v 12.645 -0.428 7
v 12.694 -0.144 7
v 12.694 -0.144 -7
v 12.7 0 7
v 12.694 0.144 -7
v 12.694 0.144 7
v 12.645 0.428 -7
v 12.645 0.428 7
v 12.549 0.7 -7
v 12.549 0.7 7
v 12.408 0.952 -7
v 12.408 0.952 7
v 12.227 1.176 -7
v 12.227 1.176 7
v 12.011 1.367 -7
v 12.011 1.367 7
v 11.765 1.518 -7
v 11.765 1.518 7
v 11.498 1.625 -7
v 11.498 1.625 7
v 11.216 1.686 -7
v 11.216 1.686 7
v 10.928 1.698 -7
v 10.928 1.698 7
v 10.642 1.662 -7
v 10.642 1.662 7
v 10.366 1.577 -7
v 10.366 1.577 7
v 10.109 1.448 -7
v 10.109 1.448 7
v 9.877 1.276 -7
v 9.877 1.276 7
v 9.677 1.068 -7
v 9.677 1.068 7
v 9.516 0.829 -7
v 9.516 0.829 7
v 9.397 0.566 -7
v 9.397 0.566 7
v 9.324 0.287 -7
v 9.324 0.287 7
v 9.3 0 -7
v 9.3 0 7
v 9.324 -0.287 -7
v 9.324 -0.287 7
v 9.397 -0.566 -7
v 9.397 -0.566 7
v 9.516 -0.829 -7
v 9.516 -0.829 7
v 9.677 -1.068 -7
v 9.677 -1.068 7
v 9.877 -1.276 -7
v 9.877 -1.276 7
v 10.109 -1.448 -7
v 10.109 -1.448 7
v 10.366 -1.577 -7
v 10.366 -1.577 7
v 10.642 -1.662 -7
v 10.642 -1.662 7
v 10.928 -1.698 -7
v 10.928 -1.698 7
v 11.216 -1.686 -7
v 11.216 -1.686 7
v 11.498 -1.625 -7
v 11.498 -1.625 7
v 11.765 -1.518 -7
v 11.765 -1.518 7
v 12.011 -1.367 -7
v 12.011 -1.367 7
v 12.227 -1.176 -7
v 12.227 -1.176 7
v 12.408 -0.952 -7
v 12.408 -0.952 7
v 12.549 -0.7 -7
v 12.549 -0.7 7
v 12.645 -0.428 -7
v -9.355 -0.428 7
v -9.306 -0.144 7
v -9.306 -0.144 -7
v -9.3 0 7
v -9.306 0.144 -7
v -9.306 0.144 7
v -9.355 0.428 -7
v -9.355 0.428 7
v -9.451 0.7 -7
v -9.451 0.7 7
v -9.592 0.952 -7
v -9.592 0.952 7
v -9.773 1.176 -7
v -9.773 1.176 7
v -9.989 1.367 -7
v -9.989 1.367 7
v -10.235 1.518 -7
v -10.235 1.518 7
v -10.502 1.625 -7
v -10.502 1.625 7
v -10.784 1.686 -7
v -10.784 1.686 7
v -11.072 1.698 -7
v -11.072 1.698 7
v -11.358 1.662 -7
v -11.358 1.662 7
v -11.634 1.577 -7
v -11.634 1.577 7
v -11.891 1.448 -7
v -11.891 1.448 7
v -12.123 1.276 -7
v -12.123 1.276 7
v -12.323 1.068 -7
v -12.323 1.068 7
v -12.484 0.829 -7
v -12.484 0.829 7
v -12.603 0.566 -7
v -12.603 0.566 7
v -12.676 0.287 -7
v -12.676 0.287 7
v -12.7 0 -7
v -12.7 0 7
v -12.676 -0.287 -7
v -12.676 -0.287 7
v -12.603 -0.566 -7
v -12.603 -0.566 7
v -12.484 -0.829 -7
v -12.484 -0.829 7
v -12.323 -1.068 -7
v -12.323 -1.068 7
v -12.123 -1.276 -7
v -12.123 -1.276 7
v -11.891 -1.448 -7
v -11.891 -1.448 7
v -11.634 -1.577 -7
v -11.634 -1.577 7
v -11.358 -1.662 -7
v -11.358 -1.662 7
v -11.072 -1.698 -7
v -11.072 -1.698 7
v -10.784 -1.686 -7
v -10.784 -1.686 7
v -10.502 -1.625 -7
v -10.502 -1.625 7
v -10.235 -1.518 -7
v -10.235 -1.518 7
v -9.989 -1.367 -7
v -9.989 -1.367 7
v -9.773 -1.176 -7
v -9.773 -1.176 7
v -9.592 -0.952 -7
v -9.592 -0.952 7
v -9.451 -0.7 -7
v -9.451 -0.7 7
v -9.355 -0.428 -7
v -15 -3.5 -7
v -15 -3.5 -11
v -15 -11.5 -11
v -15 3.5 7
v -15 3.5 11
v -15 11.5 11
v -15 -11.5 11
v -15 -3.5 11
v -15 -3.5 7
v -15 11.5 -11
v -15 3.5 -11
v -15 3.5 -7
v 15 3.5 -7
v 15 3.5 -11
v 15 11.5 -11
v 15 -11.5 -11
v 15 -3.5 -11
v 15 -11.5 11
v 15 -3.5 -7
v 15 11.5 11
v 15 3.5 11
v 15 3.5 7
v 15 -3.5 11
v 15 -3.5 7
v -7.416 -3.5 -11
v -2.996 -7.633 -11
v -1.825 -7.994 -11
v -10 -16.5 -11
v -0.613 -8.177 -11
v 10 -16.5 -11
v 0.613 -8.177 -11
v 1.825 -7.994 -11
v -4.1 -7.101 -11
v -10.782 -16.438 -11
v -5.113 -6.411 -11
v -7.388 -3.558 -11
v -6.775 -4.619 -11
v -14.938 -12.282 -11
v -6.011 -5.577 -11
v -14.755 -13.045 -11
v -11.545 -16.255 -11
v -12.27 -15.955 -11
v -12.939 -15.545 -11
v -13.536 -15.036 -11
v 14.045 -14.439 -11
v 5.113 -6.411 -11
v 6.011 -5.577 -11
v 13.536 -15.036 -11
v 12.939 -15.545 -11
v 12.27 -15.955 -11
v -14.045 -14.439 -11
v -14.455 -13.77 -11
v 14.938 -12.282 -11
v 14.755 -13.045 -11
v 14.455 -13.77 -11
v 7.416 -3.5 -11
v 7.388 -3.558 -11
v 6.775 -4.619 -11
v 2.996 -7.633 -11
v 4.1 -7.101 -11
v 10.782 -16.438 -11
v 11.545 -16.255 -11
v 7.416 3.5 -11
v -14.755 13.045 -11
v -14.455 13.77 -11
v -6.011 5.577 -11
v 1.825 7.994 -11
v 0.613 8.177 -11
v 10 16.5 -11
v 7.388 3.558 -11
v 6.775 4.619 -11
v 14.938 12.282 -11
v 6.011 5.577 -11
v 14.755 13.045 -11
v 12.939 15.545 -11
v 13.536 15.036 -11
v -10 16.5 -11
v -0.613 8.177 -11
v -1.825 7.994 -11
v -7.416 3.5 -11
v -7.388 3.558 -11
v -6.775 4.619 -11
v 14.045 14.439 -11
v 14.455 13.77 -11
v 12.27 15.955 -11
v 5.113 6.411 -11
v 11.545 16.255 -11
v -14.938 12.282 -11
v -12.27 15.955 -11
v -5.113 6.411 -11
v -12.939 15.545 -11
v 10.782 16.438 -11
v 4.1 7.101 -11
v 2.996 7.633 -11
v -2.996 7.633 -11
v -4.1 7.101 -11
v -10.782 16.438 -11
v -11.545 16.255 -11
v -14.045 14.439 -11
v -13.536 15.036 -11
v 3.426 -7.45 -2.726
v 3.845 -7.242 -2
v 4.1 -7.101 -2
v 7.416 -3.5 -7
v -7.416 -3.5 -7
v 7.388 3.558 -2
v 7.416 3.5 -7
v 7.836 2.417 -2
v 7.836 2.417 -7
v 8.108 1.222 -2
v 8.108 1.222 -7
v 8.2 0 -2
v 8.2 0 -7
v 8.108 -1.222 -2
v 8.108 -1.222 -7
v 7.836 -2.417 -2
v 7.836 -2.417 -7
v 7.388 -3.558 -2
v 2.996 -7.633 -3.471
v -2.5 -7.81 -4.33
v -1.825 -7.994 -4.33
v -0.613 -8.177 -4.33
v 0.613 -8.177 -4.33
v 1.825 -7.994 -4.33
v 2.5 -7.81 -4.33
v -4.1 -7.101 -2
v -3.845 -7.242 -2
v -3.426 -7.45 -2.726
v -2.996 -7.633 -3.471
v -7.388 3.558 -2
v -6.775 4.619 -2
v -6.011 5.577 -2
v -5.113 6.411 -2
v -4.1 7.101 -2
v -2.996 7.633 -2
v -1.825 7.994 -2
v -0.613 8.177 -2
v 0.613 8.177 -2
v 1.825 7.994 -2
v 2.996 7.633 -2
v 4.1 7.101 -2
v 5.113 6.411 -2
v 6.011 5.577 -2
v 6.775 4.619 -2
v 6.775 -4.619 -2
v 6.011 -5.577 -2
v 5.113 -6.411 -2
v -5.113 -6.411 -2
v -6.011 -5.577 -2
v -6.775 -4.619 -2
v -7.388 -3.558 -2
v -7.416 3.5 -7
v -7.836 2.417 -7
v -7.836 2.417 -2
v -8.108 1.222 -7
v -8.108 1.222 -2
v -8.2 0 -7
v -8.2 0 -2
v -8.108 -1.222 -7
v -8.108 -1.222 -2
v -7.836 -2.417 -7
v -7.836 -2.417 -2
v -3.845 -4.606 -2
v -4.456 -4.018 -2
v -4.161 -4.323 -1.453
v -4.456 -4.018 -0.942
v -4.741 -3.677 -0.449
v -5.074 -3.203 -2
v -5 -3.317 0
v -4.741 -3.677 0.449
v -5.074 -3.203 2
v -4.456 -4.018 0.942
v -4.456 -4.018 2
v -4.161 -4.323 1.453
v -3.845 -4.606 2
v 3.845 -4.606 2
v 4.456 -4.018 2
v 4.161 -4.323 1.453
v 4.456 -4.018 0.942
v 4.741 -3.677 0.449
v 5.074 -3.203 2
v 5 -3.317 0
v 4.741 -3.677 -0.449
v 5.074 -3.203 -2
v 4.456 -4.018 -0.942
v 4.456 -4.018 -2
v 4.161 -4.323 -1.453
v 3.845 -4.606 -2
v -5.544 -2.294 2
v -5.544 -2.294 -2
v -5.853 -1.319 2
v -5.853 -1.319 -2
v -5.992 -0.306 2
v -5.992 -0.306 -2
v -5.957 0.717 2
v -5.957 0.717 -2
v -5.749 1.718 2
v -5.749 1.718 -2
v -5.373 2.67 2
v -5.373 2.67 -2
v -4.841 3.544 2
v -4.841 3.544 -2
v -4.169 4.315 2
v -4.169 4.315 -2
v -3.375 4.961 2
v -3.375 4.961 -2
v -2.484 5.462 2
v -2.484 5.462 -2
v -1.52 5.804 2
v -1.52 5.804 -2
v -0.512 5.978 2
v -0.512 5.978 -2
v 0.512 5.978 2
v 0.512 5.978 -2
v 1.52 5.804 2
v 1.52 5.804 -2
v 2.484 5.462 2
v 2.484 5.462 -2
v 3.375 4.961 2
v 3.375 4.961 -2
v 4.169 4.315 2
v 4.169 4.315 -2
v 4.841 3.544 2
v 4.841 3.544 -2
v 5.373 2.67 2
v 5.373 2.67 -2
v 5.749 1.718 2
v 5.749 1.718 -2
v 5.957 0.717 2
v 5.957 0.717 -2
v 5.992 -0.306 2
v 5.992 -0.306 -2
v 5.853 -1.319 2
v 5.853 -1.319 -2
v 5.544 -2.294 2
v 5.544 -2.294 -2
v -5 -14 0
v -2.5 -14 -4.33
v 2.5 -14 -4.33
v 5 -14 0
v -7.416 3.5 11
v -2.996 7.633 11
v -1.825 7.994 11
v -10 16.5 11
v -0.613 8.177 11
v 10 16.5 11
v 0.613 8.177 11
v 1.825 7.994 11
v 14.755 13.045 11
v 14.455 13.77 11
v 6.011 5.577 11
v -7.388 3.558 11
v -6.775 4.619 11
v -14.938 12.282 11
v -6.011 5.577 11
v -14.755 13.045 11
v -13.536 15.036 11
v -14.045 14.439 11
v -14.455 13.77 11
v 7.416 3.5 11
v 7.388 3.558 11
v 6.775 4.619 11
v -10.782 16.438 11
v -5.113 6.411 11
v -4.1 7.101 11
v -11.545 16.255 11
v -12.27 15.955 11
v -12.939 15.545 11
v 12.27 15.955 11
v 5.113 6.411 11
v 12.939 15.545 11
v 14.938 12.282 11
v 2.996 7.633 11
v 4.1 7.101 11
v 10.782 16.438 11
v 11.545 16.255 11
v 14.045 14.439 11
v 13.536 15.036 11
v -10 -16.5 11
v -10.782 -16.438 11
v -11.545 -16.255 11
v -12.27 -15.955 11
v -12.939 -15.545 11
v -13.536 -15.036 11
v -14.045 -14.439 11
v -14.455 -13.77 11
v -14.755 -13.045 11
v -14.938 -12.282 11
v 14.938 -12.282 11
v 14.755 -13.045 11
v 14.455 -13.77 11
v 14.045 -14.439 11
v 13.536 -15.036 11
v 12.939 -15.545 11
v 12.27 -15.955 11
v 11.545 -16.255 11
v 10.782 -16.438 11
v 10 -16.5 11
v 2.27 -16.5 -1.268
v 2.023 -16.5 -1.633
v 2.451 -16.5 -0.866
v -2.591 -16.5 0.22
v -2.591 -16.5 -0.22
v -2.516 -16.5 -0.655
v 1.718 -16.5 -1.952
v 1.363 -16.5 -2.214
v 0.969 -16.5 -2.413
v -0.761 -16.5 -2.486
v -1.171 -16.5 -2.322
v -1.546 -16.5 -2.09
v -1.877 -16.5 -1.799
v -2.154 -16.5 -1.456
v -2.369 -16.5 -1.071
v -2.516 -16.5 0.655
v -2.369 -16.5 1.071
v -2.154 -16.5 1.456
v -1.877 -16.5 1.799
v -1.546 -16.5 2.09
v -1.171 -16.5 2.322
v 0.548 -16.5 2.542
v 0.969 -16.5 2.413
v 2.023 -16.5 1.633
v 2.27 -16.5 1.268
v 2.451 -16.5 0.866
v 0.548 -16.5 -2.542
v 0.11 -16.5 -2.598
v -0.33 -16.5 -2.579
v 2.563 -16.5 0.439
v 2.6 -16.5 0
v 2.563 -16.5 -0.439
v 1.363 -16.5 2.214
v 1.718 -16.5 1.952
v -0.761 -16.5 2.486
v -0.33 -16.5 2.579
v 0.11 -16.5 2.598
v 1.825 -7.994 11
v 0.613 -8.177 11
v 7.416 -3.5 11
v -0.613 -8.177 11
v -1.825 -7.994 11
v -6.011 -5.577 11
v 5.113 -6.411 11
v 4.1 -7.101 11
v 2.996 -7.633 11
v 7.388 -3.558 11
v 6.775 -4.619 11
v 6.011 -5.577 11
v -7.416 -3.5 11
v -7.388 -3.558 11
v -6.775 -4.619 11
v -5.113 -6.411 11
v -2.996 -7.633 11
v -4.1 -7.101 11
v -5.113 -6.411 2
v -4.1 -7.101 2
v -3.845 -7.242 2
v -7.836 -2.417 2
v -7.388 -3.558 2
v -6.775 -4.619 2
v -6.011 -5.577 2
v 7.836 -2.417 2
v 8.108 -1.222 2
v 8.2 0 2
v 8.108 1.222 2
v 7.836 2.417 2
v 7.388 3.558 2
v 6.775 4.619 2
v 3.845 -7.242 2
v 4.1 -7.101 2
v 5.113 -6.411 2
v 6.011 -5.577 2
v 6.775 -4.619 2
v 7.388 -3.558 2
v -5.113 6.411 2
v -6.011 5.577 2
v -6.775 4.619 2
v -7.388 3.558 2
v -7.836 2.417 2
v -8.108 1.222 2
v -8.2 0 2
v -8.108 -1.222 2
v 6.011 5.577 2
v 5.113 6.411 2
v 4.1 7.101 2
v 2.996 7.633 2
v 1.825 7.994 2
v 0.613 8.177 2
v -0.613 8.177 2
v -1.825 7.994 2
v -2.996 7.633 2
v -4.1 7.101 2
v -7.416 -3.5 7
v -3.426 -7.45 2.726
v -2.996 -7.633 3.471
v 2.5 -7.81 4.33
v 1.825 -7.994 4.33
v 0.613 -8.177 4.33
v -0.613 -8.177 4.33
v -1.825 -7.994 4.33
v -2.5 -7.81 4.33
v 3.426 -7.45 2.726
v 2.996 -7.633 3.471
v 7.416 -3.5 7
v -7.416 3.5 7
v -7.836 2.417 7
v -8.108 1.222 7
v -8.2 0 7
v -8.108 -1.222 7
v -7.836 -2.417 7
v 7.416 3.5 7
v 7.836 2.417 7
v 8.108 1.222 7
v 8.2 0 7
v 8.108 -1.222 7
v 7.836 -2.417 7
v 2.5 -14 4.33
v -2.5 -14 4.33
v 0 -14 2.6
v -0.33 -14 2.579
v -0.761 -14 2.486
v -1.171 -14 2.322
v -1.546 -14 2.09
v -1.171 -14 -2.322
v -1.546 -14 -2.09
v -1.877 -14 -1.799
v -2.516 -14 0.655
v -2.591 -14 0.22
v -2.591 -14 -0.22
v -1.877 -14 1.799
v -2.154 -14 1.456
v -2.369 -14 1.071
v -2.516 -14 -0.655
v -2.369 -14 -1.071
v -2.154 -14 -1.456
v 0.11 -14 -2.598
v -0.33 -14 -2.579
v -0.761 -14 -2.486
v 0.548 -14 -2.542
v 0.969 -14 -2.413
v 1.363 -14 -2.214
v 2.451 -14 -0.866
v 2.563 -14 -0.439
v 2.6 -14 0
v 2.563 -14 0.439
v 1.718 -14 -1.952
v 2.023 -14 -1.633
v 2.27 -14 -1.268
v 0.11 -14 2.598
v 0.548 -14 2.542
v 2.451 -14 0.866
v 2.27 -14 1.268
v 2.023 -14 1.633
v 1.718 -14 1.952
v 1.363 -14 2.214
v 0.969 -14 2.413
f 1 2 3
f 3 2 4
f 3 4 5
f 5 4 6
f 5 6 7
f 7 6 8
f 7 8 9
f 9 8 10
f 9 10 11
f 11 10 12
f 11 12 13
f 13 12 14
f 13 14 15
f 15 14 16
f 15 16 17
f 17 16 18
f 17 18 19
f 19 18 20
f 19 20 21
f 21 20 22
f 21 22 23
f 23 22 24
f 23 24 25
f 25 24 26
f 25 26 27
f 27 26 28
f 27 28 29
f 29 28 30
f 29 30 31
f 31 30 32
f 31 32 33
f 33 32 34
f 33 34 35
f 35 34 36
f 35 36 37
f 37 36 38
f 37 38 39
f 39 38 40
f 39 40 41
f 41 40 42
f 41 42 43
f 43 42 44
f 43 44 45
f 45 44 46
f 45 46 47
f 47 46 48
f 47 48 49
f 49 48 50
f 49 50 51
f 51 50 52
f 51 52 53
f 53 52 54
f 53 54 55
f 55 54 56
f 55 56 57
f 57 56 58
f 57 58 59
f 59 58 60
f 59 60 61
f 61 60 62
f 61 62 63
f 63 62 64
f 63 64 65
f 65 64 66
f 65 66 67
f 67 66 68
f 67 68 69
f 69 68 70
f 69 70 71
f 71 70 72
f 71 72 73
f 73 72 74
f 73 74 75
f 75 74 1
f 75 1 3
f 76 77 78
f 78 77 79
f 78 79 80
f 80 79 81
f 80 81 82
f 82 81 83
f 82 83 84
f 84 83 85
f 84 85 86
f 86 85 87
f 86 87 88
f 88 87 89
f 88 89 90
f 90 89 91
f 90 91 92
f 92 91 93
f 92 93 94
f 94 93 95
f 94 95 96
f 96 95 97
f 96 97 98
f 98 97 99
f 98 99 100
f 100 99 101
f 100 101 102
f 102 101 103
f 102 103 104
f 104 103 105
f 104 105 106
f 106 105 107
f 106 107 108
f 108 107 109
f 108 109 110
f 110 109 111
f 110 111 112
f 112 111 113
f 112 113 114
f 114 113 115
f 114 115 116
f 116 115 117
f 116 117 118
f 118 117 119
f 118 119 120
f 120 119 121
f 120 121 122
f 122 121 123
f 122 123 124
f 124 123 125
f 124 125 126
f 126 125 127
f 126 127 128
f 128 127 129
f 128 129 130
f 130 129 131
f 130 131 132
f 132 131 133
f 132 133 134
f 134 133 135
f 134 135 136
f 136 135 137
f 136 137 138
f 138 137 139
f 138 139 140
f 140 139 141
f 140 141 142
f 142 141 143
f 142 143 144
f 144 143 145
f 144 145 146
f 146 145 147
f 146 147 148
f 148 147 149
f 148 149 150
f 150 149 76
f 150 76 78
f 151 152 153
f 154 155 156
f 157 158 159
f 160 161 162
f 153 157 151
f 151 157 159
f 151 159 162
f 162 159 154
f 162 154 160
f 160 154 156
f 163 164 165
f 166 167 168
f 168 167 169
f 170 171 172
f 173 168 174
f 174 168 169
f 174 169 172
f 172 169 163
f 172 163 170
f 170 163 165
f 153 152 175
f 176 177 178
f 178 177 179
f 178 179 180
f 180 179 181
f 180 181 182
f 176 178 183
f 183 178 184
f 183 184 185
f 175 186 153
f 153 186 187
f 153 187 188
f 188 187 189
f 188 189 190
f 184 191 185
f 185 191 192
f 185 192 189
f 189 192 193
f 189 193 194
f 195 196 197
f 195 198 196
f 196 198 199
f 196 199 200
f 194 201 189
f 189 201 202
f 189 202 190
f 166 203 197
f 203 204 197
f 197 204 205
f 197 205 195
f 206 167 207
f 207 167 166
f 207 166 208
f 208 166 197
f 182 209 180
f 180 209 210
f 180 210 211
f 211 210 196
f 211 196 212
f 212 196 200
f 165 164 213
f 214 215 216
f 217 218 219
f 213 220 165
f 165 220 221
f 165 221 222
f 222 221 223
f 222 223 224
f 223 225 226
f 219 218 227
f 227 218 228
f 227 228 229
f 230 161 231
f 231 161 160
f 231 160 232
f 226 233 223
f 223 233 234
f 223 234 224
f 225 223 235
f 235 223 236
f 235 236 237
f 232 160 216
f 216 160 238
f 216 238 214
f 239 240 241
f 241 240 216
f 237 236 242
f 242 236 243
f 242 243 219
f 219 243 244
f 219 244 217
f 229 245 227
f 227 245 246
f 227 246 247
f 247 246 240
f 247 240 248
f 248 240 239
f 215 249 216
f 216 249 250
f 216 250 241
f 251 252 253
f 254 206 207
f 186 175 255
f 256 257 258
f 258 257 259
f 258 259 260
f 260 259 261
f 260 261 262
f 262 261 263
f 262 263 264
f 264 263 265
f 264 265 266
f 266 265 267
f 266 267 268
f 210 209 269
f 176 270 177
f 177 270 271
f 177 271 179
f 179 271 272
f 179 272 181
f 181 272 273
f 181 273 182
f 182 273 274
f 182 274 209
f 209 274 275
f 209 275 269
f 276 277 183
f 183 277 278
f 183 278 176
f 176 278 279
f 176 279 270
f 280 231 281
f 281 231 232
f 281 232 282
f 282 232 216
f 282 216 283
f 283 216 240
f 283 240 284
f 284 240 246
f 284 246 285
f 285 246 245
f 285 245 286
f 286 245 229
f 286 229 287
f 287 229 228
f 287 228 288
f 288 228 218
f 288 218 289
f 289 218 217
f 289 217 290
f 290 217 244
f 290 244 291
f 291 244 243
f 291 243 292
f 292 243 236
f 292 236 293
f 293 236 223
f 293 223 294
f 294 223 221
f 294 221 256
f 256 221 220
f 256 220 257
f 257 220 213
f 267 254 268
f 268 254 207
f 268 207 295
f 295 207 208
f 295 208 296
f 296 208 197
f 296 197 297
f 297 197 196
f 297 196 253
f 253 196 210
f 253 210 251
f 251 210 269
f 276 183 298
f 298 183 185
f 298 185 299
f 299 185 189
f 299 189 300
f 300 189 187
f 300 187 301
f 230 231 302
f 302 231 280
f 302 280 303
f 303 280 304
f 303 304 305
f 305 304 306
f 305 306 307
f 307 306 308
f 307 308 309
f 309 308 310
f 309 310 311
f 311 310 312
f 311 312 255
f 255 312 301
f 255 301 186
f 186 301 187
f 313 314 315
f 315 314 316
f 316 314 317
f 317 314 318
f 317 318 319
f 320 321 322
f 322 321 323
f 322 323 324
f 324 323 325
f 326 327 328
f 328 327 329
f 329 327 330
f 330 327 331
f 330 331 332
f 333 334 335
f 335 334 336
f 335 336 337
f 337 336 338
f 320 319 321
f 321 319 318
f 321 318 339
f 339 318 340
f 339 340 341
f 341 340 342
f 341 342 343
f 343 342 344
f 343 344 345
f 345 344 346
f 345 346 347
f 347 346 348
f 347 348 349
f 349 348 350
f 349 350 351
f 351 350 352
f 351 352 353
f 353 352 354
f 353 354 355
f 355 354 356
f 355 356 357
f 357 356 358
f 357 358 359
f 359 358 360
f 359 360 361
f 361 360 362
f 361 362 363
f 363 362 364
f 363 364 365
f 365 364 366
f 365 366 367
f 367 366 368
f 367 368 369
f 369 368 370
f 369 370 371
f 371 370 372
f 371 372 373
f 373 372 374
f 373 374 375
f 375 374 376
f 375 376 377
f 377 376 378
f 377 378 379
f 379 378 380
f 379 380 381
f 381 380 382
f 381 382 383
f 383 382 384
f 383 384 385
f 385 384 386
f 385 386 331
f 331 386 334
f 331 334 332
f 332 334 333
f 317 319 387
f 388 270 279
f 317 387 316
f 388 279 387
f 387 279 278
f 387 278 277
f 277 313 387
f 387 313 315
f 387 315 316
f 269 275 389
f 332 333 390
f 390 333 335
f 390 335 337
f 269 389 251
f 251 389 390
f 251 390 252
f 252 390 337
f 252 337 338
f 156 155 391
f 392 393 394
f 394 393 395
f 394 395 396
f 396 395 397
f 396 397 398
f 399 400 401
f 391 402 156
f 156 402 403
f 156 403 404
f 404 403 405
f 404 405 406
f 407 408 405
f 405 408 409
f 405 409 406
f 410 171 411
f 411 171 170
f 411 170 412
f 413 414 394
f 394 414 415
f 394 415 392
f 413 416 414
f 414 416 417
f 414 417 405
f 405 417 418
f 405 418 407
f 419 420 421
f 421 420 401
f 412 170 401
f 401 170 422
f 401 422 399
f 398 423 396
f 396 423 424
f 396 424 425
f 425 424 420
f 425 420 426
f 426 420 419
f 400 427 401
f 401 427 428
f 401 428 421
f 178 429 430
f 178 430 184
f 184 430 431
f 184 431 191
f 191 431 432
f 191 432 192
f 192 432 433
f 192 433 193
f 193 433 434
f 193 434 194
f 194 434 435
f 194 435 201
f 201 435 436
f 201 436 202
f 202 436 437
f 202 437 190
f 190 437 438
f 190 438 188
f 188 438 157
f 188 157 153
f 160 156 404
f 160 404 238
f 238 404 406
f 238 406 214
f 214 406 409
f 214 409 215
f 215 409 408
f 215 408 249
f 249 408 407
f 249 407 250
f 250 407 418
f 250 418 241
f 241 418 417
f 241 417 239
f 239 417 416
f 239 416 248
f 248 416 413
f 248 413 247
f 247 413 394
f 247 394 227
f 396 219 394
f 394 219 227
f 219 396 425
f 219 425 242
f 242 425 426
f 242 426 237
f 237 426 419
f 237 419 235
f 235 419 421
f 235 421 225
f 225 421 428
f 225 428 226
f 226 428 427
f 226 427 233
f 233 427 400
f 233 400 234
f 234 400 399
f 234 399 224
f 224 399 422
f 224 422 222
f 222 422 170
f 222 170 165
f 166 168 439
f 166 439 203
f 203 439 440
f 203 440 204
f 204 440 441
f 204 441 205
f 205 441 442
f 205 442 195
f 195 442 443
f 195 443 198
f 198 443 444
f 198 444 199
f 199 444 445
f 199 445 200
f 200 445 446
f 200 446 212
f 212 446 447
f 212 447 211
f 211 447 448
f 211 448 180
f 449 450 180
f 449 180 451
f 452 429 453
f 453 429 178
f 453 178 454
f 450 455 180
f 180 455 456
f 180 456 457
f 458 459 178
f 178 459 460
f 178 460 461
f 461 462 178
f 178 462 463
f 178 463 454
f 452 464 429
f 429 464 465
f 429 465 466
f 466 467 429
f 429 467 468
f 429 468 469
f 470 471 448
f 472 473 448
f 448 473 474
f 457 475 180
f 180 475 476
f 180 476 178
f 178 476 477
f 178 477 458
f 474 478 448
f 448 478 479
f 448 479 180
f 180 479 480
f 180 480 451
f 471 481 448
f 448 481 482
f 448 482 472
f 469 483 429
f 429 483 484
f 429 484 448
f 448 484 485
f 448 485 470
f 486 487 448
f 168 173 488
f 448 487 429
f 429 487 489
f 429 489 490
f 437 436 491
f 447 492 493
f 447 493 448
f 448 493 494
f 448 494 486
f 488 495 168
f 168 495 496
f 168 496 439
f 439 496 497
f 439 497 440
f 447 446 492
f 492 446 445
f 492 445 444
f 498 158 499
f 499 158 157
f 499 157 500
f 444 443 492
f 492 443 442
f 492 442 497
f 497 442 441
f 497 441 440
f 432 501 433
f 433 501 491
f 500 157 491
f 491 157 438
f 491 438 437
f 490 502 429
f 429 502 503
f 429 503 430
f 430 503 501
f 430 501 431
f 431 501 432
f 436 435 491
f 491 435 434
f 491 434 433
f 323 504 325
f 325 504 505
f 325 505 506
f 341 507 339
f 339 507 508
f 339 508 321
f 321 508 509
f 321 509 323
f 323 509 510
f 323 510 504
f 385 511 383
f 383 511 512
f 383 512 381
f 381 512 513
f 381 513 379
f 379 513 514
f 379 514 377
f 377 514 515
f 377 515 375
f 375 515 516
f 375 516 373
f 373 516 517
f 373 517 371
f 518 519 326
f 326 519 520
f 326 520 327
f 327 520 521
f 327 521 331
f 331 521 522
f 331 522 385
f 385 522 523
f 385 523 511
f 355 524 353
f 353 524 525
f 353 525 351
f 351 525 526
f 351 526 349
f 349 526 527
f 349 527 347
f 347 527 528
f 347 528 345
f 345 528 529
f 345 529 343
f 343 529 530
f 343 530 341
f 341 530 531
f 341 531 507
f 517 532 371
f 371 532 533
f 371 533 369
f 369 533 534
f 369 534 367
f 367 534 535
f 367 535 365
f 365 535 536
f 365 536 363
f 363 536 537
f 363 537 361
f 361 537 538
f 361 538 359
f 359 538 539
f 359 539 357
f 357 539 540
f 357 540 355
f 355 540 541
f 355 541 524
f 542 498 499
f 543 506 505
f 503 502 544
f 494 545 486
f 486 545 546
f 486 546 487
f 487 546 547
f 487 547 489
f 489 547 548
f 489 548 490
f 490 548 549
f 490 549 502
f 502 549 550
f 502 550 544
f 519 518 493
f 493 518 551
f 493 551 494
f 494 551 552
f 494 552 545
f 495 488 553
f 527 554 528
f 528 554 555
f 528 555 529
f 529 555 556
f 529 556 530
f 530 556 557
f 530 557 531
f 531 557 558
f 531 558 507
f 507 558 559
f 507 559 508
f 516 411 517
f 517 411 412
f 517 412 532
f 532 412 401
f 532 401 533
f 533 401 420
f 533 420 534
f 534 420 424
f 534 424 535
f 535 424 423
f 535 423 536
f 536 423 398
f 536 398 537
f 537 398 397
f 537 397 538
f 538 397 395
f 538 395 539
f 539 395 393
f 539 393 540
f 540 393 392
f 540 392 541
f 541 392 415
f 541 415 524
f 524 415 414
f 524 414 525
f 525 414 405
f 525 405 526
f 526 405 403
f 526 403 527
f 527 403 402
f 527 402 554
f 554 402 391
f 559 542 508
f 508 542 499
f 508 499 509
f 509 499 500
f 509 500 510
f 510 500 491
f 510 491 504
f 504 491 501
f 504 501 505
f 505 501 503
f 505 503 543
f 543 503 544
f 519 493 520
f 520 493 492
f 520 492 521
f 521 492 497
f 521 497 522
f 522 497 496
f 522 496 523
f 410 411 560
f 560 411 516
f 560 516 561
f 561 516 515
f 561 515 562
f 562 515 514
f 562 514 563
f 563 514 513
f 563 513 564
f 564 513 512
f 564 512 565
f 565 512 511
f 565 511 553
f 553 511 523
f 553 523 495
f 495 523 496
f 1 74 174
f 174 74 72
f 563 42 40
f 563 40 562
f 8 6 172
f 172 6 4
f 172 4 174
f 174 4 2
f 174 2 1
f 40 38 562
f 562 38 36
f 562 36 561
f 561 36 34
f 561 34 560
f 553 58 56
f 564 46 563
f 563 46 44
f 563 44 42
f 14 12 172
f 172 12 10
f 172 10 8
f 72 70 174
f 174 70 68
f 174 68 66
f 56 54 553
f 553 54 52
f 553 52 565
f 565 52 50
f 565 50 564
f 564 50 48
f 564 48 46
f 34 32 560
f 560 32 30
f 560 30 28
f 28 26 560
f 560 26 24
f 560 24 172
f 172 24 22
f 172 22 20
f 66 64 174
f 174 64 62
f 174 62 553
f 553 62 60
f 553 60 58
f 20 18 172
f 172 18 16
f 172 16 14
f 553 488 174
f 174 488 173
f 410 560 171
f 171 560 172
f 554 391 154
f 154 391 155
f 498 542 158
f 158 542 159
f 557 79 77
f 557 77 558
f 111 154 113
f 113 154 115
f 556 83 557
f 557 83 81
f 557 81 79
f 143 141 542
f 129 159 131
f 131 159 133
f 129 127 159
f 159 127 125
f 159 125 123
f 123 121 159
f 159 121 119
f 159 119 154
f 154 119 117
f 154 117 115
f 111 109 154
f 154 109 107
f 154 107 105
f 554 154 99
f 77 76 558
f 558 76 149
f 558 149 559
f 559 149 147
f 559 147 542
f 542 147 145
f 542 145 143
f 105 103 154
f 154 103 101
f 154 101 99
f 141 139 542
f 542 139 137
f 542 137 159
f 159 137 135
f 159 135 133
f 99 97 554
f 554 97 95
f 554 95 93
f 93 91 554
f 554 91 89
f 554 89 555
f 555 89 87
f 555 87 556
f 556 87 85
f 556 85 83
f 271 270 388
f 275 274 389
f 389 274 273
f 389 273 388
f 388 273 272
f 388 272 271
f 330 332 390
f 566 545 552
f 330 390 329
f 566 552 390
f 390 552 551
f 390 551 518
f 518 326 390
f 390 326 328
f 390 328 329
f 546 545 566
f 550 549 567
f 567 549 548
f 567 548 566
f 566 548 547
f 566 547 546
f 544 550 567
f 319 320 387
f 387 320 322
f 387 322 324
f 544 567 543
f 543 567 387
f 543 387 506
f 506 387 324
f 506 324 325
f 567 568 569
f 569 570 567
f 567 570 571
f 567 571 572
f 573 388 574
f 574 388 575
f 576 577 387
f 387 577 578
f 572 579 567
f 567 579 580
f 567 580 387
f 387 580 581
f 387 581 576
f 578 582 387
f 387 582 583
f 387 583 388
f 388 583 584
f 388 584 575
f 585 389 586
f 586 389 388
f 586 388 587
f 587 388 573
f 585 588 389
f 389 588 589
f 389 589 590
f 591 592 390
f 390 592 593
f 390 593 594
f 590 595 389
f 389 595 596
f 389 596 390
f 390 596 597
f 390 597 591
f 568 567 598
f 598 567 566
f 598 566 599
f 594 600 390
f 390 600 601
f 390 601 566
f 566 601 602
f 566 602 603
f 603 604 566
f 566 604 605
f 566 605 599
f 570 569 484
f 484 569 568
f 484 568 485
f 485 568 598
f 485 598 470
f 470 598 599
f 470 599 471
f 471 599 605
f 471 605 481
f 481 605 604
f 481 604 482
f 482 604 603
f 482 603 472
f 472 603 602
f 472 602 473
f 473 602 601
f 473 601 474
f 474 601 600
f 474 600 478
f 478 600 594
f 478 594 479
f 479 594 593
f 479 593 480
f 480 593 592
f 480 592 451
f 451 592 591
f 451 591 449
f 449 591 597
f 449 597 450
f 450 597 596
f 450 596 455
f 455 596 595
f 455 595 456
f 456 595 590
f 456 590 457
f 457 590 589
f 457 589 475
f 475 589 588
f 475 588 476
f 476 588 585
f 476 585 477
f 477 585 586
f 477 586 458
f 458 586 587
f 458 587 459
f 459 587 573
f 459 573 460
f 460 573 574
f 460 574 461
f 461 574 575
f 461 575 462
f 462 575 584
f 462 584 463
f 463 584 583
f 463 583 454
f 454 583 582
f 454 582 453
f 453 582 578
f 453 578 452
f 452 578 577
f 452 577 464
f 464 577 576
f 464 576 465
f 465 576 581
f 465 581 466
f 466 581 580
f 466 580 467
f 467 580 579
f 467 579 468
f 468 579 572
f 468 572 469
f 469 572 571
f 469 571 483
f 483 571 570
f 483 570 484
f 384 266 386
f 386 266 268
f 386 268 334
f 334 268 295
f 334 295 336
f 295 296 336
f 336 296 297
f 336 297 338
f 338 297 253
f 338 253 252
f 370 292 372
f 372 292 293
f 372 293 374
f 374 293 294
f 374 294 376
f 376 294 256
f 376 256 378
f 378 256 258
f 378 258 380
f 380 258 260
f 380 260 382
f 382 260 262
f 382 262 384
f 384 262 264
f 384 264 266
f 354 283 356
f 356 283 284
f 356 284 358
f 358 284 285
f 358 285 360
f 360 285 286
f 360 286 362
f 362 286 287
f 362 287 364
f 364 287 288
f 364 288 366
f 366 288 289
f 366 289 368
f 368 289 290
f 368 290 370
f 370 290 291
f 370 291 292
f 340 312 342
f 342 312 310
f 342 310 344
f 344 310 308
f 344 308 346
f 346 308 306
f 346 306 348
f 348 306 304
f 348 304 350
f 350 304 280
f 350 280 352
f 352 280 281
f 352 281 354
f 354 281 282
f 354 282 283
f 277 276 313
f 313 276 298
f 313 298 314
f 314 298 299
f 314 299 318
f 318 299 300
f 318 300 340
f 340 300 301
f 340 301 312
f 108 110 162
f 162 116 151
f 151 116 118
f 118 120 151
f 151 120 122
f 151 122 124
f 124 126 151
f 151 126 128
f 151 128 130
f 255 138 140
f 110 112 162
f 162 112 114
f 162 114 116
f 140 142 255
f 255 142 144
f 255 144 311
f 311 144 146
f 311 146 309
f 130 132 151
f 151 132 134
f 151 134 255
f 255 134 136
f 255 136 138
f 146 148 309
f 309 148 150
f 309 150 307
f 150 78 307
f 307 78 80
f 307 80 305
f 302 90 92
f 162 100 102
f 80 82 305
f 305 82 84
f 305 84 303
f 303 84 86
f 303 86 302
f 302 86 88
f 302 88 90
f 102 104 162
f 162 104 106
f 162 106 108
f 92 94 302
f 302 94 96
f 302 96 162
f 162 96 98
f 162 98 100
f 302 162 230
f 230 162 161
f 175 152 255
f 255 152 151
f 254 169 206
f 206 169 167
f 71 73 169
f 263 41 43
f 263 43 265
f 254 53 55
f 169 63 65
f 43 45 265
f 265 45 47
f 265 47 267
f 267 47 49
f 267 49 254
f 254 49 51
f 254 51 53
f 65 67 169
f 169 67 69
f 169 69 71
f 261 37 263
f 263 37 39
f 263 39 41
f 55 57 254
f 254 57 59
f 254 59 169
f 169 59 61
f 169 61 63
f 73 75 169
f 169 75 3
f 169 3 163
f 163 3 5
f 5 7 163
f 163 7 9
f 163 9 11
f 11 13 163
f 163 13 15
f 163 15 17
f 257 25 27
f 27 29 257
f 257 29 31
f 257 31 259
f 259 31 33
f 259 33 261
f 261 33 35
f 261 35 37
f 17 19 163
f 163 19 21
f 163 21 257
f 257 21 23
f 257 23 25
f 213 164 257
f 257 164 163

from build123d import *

# Parameters (mm, degrees)
SALIENTE_EXTRUIR2_DEPTH      = 11
SALIENTE_EXTRUIR2_DEPTH_BACK = 11
CROQUIS4_R                   = 6
CROQUIS4_R_2                 = 1.7
CORTAR_EXTRUIR2_DEPTH        = 33
CROQUIS5_R                   = 8.2
CORTAR_EXTRUIR3_DEPTH        = 9
CROQUIS6_W                   = 30.6
CROQUIS6_H                   = 7
CORTAR_EXTRUIR4_DEPTH        = 4
CORTAR_EXTRUIR6_DEPTH        = 14
CROQUIS9_R                   = 2.6
CORTAR_EXTRUIR7_DEPTH        = 5


with BuildPart() as part:
    # Croquis2 → Saliente-Extruir2 (new body, two sides)
    with BuildSketch(Plane.XY) as saliente_extruir2_sk:
        with BuildLine():
            Line((-15, -1.5), (-15, 1.5))
            Line((-15, 1.5), (-15, 11.5))
            ThreePointArc((-15, 11.5), (-13.535533906, 15.035533906), (-10, 16.5))
            Line((-10, 16.5), (10, 16.5))
            ThreePointArc((10, 16.5), (13.535533906, 15.035533906), (15, 11.5))
            Line((15, 11.5), (15, 1.5))
            Line((15, 1.5), (15, -1.5))
            Line((15, -1.5), (15, -11.5))
            ThreePointArc((15, -11.5), (13.535533906, -15.035533906), (10, -16.5))
            Line((10, -16.5), (-10, -16.5))
            ThreePointArc((-10, -16.5), (-13.535533906, -15.035533906), (-15, -11.5))
            Line((-15, -11.5), (-15, -1.5))
        make_face()
    extrude(amount=SALIENTE_EXTRUIR2_DEPTH)
    extrude(saliente_extruir2_sk.sketch, amount=-SALIENTE_EXTRUIR2_DEPTH_BACK)

    # Croquis4 → Cortar-Extruir2 (cut)
    with BuildSketch(Plane(origin=(0, 0, -11), x_dir=(-1, 0, 0), z_dir=(0, 0, -1))):
        Circle(CROQUIS4_R)
        with Locations((-11, 0)):
            Circle(CROQUIS4_R_2)
        with Locations((11, 0)):
            Circle(CROQUIS4_R_2)
    extrude(amount=-CORTAR_EXTRUIR2_DEPTH, mode=Mode.SUBTRACT)

    # Croquis5 → Cortar-Extruir3 (cut)
    with BuildSketch(Plane.XY.offset(11)):
        Circle(CROQUIS5_R)
    cortar_extruir3 = extrude(amount=-CORTAR_EXTRUIR3_DEPTH, mode=Mode.SUBTRACT)

    # Croquis6 → Cortar-Extruir4 (cut)
    with BuildSketch(Plane.XY.offset(11)):
        Rectangle(CROQUIS6_W, CROQUIS6_H)
    cortar_extruir4 = extrude(amount=-CORTAR_EXTRUIR4_DEPTH, mode=Mode.SUBTRACT)

    # Croquis8 → Cortar-Extruir6 (cut)
    with BuildSketch(Plane(origin=(0, 0, 0), x_dir=(1, 0, 0), z_dir=(0, 1, 0))):
        Polygon((5, 0), (2.5, 4.330127019), (-2.5, 4.330127019), (-5, 0), (-2.5, -4.330127019), (2.5, -4.330127019), align=None)
    extrude(amount=-CORTAR_EXTRUIR6_DEPTH, mode=Mode.SUBTRACT)

    # Croquis9 → Cortar-Extruir7 (cut)
    with BuildSketch(Plane.XZ.offset(16.5)):
        Circle(CROQUIS9_R)
    extrude(amount=-CORTAR_EXTRUIR7_DEPTH, mode=Mode.SUBTRACT)

    # Simetr_a1: Cortar-Extruir3, Cortar-Extruir4 across plane
    add(cortar_extruir3.mirror(Plane.XY), mode=Mode.SUBTRACT)
    add(cortar_extruir4.mirror(Plane.XY), mode=Mode.SUBTRACT)


solid = part.part
